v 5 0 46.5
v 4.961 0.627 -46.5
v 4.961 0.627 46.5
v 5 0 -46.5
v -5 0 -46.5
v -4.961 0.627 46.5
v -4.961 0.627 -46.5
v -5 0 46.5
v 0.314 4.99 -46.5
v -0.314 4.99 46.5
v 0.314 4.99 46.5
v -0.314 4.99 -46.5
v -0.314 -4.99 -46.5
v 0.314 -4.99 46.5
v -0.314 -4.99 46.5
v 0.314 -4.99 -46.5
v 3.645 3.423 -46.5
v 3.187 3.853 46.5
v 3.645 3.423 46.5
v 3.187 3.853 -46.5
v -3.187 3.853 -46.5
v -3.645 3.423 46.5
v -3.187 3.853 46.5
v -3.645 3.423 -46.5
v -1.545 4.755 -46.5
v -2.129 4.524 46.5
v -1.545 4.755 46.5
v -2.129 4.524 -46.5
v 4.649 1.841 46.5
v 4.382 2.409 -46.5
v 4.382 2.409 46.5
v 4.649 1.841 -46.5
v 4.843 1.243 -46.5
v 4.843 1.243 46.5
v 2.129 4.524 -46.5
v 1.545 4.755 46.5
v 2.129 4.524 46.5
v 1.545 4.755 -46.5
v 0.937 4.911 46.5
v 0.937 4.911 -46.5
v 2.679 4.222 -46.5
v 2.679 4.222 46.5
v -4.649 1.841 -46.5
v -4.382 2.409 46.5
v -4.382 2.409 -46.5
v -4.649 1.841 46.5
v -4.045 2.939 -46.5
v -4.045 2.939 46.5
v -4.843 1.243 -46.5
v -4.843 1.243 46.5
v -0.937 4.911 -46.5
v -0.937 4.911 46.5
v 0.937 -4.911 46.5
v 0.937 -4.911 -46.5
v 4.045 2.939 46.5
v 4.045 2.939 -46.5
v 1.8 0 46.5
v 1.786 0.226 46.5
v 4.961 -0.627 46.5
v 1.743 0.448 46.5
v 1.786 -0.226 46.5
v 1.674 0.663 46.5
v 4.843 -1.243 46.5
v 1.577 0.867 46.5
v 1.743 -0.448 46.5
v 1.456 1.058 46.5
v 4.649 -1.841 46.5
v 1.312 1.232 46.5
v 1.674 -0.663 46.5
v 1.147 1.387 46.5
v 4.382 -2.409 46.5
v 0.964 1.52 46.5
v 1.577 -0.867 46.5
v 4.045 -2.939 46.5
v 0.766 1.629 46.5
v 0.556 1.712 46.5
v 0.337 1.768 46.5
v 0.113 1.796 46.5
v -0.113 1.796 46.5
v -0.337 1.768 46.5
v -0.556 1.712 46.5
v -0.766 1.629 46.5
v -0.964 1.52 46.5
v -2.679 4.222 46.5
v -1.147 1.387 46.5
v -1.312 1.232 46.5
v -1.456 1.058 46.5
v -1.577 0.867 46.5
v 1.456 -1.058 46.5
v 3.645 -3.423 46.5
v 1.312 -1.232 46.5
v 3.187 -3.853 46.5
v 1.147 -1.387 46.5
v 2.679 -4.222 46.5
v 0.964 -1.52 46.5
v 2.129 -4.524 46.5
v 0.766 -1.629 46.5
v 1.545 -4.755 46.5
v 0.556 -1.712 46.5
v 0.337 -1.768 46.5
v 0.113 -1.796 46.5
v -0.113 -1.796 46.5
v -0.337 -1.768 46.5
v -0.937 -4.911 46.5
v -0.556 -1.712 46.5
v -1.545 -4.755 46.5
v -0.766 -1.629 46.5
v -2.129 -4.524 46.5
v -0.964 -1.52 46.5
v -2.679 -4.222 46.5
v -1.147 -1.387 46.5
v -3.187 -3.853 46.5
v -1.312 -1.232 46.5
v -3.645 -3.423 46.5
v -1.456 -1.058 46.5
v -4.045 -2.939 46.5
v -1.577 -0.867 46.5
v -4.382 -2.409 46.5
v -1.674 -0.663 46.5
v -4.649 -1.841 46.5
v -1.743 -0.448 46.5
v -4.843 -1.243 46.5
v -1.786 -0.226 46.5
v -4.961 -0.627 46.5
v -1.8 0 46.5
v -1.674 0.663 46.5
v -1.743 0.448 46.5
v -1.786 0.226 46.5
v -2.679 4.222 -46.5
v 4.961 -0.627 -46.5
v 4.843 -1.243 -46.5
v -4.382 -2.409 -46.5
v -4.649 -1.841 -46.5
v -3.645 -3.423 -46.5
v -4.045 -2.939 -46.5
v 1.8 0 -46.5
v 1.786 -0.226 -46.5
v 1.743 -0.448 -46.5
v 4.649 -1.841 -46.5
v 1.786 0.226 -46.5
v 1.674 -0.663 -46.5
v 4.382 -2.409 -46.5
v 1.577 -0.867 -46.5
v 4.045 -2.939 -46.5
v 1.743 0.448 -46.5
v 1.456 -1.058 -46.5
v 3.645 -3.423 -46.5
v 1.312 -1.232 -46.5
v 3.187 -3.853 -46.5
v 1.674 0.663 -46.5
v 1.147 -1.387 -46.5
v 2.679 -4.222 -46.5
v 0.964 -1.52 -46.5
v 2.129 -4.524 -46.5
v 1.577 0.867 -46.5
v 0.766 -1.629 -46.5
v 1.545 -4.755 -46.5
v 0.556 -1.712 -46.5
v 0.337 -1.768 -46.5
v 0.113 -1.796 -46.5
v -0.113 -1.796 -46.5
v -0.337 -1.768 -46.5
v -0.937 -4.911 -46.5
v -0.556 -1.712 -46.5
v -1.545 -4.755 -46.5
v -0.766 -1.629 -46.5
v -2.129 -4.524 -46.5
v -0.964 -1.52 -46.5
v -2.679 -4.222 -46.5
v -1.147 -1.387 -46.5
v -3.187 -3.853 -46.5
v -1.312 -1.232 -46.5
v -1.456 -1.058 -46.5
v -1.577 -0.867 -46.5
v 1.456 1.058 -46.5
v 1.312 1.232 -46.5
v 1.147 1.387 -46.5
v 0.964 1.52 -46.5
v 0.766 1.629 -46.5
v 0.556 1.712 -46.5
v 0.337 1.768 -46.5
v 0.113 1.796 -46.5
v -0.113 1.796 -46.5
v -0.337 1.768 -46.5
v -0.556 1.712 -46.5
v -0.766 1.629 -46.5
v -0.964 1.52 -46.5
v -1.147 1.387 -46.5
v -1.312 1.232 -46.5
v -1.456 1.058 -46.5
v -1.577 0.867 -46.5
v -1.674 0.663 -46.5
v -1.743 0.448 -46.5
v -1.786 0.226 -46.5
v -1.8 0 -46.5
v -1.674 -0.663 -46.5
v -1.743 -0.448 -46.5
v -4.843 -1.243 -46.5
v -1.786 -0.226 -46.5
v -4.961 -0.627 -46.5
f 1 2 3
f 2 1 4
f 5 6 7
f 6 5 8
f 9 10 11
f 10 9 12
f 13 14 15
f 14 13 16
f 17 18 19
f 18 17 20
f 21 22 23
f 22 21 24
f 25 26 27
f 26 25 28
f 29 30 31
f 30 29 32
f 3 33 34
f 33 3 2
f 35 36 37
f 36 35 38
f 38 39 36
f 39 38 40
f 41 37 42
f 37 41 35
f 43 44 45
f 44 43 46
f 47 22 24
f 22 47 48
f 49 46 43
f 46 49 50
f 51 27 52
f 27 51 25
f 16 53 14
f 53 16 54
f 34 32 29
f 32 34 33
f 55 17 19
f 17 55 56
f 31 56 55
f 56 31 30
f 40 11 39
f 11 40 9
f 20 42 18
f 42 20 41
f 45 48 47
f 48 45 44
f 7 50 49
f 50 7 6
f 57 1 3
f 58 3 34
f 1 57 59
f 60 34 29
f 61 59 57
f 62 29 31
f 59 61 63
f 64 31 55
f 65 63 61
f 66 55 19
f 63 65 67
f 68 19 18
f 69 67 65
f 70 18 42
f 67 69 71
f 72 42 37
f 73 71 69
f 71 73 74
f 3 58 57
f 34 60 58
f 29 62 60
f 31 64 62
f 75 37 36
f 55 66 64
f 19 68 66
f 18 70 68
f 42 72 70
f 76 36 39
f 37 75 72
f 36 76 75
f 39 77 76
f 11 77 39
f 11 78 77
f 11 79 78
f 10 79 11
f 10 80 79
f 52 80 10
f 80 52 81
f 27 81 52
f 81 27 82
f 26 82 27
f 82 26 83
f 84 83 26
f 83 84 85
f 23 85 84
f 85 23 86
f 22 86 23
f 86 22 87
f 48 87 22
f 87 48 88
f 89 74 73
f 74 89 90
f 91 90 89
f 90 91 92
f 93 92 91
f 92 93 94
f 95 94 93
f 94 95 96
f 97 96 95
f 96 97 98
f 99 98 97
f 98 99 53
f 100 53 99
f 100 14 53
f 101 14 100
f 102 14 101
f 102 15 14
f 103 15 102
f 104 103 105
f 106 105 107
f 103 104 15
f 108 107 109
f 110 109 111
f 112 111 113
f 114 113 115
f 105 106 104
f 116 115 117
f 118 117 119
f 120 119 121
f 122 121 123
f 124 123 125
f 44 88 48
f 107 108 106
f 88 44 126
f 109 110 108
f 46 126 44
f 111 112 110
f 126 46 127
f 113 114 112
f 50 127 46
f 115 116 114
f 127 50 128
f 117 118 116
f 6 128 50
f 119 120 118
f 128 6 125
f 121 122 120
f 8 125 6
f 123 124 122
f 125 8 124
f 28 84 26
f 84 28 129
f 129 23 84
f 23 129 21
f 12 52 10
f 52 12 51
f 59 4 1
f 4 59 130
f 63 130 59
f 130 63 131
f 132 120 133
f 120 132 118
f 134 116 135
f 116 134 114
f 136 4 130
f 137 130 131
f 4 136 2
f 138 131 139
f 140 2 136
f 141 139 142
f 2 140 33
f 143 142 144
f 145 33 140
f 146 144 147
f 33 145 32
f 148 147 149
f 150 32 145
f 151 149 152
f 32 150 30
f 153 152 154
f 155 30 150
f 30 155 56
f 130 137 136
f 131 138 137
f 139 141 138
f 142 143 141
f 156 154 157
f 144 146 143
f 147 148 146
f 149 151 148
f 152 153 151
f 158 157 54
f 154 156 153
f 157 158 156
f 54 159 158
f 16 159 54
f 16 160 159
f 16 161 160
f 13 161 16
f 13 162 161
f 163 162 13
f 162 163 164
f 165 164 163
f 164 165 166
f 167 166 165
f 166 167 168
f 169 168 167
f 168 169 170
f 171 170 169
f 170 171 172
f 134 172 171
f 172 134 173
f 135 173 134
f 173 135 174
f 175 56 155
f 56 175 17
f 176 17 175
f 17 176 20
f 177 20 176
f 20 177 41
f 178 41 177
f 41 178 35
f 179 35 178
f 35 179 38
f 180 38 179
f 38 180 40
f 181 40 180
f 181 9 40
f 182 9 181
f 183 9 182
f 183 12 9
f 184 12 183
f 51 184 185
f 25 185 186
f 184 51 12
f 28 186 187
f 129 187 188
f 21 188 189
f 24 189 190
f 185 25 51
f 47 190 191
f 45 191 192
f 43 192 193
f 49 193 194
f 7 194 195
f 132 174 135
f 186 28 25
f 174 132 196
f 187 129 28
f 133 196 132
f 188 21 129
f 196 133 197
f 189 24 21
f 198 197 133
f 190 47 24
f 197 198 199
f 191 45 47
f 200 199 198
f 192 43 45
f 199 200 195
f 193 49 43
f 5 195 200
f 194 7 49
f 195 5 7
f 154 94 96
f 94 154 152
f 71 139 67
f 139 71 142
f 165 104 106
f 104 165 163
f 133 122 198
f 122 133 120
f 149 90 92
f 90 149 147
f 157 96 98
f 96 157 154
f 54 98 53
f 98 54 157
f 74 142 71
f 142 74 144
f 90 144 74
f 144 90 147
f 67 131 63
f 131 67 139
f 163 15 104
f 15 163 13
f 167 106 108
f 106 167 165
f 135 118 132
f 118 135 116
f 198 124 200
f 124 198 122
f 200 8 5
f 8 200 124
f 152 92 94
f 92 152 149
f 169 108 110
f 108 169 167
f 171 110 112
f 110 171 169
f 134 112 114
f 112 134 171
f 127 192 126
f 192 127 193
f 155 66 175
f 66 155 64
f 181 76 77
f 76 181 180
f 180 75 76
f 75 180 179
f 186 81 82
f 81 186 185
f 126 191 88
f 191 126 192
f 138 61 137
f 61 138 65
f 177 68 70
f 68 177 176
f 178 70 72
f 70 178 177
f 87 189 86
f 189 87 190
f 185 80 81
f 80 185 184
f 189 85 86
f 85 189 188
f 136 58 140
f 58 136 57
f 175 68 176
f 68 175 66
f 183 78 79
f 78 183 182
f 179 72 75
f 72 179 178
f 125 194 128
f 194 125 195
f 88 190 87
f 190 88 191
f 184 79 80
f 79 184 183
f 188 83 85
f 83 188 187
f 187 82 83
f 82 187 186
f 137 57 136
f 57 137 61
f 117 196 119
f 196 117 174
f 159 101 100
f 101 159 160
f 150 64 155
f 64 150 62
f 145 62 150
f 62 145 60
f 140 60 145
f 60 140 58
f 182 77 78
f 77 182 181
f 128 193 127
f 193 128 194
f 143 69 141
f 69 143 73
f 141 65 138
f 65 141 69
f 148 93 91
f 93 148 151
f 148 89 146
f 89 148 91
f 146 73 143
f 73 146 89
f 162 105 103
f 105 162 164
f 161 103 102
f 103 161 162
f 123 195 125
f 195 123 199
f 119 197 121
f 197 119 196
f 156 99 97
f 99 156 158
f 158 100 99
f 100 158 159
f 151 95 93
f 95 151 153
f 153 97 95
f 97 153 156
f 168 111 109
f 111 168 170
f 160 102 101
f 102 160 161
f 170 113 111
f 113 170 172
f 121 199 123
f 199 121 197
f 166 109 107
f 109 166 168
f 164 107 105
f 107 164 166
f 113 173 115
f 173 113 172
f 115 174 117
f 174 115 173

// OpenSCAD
$fn = 50;


difference() {
	union() {
		translate(v = [0, 0, -46.5000000000]) {
			cylinder(h = 93, r = 5.0000000000);
		}
	}
	union() {
		translate(v = [0, 0, -100.0000000000]) {
			cylinder(h = 200, r = 1.8000000000);
		}
	}
}
